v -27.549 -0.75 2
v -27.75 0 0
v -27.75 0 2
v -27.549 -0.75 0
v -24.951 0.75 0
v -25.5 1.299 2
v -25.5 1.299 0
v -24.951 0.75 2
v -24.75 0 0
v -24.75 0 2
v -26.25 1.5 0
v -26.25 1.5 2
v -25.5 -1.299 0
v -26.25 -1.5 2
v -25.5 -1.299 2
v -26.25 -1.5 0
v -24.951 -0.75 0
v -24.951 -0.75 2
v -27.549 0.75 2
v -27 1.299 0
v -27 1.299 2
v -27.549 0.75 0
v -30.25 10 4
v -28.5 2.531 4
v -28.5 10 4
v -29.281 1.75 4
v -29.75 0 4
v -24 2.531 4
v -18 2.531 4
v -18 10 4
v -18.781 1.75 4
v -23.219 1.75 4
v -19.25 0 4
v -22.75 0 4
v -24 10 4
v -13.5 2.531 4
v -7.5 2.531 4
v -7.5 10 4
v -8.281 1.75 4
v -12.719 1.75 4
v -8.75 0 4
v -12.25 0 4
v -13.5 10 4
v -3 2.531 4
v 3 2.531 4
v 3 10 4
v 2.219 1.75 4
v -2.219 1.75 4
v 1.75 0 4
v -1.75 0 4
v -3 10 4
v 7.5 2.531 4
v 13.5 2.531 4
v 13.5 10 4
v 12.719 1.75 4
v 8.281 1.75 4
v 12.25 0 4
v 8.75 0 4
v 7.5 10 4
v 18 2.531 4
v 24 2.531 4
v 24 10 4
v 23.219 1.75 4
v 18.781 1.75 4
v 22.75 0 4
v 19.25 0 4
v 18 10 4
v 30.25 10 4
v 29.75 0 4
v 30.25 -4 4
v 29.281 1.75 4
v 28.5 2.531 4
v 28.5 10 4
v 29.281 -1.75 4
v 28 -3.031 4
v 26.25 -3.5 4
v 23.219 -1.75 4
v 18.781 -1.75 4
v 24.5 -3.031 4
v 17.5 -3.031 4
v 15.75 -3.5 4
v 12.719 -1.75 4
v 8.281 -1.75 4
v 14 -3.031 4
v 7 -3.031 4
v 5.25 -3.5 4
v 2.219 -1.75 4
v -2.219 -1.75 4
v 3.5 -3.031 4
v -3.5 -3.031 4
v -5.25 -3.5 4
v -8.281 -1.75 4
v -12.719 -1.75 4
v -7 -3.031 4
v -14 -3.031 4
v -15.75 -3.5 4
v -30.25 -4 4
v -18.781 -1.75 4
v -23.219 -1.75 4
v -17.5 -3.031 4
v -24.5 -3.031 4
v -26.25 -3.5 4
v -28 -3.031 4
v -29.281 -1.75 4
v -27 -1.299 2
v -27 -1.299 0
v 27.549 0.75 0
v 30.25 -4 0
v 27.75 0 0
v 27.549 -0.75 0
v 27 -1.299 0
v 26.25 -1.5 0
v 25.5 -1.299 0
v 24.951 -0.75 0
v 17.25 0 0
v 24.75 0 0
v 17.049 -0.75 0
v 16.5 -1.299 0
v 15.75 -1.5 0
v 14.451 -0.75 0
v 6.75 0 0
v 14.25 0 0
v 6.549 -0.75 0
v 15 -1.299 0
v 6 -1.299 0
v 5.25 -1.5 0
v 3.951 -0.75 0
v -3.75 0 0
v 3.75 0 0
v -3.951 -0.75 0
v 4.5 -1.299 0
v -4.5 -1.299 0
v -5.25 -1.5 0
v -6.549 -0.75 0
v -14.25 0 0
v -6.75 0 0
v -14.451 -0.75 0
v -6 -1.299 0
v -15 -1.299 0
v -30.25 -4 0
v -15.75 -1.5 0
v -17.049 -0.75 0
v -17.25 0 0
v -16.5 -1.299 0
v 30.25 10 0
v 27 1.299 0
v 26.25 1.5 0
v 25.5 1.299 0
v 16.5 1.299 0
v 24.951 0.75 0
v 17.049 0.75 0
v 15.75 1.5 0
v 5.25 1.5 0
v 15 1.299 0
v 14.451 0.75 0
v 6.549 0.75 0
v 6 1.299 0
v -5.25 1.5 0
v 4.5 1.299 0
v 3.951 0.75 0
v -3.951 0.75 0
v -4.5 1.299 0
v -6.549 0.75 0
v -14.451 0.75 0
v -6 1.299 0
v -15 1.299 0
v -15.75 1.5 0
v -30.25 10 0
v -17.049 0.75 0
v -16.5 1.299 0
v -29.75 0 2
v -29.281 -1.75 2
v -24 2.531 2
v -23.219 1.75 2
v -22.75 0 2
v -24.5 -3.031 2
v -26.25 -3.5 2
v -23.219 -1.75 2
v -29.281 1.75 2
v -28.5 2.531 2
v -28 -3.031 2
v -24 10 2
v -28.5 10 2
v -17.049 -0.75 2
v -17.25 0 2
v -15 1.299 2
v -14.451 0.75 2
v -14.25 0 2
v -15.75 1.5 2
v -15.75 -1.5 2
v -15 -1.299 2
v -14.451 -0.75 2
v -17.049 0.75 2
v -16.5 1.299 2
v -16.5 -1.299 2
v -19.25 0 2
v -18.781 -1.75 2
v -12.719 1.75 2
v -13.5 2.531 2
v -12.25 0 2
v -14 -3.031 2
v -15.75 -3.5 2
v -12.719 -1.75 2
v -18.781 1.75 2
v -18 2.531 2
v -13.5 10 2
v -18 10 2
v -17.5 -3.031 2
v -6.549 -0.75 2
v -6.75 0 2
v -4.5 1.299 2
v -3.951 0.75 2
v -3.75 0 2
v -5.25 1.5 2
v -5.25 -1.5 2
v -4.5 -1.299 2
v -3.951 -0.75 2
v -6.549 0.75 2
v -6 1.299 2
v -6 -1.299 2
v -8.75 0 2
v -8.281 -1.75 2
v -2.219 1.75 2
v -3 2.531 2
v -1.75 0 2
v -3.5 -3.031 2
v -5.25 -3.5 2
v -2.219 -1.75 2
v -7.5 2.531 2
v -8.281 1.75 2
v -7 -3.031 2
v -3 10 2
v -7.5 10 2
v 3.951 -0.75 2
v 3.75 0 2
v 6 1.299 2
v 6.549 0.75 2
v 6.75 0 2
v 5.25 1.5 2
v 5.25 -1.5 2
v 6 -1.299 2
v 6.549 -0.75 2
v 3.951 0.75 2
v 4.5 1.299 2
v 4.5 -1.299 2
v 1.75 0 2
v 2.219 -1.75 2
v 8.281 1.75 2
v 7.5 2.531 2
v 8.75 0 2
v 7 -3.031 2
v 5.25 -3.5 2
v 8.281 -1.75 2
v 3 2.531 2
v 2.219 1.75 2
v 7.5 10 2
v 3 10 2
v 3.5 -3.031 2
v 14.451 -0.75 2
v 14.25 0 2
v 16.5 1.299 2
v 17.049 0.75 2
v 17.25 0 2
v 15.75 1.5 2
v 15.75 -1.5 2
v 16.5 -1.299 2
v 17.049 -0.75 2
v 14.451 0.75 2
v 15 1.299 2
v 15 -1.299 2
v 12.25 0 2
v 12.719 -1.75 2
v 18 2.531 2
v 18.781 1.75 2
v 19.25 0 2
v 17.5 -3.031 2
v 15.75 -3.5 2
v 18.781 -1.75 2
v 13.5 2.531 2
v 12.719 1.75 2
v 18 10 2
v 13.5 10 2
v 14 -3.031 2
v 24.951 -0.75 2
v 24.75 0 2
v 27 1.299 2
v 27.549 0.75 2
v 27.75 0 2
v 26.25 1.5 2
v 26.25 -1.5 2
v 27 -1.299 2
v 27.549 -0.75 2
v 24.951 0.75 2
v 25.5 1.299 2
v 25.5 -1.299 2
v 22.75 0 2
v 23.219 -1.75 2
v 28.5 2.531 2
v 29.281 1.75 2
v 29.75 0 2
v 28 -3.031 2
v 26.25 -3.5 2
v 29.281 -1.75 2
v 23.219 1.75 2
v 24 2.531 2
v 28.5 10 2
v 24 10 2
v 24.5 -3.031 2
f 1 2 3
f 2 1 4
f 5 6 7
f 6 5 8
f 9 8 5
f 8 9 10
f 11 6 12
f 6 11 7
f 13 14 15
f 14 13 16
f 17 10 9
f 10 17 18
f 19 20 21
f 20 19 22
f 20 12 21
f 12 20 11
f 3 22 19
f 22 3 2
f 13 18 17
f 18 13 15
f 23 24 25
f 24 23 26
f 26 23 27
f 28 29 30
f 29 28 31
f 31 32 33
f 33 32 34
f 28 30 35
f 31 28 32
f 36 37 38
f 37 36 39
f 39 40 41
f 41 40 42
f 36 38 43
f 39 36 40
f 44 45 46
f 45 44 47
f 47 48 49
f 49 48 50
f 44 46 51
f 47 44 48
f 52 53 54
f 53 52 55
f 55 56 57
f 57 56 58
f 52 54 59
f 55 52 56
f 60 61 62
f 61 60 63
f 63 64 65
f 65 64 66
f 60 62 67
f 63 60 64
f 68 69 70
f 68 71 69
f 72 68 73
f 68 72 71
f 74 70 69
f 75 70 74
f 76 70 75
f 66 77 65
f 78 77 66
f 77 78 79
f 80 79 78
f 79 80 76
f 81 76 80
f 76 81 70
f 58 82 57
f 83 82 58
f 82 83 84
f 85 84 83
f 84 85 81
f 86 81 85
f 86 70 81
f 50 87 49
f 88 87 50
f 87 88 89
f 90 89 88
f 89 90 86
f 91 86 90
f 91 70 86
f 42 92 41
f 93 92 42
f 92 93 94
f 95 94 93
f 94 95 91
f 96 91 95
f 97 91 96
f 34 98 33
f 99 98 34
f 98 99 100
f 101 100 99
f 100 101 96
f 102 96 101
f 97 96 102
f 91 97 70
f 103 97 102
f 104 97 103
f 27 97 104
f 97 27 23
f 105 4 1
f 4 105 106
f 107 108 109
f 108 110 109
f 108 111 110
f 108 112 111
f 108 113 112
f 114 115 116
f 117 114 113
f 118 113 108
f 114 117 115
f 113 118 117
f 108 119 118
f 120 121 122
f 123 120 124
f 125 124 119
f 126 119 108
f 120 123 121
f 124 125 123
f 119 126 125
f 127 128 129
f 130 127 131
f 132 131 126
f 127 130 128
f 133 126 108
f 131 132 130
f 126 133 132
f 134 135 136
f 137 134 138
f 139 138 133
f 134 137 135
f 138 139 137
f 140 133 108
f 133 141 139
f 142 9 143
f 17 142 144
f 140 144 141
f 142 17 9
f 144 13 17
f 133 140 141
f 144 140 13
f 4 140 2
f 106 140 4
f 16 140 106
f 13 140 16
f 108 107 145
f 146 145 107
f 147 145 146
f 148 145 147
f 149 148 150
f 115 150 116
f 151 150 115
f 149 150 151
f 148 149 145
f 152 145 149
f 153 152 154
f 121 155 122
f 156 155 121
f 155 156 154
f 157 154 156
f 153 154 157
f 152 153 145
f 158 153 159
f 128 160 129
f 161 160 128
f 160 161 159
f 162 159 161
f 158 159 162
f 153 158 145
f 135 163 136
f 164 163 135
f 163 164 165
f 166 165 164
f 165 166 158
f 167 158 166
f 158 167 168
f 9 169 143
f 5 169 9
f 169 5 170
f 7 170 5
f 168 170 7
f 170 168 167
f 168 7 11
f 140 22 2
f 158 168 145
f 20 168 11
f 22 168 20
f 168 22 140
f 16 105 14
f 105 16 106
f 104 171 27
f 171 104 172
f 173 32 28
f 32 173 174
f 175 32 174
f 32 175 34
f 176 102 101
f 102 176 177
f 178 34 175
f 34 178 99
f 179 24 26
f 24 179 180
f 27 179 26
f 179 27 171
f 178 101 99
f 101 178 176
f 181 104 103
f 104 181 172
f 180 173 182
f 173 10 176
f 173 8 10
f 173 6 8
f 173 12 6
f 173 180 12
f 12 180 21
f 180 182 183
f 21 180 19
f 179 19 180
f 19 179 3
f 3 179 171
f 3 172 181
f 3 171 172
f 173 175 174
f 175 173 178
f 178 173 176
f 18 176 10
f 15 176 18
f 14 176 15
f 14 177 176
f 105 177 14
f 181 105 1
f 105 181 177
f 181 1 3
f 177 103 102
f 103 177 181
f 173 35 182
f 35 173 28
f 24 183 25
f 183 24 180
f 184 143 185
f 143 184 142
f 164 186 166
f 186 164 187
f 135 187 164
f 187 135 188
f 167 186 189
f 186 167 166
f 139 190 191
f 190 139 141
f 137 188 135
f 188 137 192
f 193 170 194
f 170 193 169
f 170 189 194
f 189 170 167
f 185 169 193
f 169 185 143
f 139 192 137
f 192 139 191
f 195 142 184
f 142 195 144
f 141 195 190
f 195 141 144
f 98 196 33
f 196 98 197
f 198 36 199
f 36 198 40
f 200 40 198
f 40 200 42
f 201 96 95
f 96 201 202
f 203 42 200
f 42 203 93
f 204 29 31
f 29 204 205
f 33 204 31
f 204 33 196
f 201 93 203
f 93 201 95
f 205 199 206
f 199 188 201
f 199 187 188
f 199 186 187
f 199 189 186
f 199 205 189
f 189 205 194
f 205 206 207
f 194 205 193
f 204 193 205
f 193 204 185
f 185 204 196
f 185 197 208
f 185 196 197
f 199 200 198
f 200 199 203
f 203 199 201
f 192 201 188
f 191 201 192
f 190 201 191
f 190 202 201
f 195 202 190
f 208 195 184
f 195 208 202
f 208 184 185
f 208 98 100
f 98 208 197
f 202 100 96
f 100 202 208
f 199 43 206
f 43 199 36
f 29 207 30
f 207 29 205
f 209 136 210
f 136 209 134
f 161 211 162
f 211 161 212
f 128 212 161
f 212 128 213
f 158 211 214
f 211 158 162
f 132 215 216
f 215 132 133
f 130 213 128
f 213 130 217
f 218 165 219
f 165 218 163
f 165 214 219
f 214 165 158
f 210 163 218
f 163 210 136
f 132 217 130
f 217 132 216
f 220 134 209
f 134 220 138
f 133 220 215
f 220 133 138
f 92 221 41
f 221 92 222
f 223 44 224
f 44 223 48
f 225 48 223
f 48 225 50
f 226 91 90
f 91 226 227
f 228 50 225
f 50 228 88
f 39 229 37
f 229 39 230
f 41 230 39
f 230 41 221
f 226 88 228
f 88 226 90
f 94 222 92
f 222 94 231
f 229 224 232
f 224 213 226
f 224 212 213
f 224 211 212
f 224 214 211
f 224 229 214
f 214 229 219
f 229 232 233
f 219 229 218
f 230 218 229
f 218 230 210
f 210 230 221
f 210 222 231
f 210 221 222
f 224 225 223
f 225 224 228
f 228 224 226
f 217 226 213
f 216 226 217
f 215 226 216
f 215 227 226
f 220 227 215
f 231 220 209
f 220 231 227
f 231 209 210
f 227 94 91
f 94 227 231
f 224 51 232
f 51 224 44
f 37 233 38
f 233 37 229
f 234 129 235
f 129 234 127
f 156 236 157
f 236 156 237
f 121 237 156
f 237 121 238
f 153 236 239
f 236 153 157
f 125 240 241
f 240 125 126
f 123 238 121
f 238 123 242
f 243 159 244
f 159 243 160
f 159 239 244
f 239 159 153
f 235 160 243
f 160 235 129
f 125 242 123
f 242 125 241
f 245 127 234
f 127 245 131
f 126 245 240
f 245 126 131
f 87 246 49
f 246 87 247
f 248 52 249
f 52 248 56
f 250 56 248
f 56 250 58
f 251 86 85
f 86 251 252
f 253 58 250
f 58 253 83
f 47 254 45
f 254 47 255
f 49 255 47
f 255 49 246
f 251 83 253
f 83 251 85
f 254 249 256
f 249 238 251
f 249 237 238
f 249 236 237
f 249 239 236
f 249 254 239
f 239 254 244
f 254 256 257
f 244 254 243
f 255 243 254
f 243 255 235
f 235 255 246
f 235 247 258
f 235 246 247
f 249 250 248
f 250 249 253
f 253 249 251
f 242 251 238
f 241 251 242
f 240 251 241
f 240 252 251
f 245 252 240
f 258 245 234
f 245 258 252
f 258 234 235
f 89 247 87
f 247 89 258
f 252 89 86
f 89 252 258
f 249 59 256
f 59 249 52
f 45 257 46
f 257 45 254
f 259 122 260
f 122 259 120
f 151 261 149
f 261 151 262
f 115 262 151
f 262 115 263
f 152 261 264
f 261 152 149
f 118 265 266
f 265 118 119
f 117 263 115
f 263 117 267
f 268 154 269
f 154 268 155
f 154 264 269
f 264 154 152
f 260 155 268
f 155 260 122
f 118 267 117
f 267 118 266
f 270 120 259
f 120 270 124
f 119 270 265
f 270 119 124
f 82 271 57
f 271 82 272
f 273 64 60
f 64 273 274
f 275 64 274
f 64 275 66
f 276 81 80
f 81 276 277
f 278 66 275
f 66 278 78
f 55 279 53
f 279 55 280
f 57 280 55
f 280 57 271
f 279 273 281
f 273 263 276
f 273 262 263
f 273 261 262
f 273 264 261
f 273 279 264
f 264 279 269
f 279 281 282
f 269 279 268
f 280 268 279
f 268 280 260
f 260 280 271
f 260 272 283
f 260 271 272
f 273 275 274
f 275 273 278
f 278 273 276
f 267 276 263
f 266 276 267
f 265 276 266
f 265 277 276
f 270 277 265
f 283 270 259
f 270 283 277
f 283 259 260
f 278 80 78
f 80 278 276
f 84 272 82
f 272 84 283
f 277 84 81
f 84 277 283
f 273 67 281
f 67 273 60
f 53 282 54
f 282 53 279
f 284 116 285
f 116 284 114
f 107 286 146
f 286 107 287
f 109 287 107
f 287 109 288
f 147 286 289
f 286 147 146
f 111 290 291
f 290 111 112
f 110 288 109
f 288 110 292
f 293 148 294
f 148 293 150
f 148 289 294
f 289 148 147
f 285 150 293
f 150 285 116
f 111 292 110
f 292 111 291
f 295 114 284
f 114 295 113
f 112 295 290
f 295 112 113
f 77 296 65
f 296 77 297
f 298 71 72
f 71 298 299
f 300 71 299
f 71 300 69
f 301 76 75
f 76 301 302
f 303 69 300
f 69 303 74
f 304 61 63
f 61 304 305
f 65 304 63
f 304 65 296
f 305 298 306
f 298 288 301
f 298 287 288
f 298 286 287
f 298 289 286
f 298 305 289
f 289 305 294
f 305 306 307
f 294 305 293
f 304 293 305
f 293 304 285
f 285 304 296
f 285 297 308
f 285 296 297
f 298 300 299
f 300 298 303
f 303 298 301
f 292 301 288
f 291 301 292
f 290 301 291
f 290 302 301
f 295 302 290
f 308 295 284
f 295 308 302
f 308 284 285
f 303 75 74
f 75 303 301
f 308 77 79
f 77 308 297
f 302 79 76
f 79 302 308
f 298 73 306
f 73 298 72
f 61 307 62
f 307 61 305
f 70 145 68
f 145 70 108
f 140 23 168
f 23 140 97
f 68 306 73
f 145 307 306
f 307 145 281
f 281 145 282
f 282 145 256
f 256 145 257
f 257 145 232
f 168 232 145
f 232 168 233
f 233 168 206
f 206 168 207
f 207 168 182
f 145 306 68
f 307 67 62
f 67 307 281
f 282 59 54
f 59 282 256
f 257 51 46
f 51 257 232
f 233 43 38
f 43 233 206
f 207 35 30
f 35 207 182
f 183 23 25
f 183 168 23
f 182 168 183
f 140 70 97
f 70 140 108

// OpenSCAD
// file: ../parameter.scad
nStrings=6;
nFrets=24;
nLedFrets=16;
m5Dia=5.3;
m5HeadZ=3.5;
m4Dia=4.3;
m4NutDia=8.3;
m4NutZ=3.5;
m4HeadZ=2.5;
m3Dia=3.3;
m3NutDia=6.6;
m3NutZ=2.5;
m3HeadZ=2;
m3HeadDia=6;
m2Dia=2.4;
m2HeadZ=2;
strDistN=7;
strDistB=10.5;
scale=645;
neckSlotY=500;

slotXY=15;

bodySlotX=115;
bodySlotY=250;

jackYA=40;
jackYB=54;
jackZA=20;
jackZB=25;

bodyX=300;

bodyZ=40;

strDia=[1.7,1.4,1.1,0.7,0.5,0.35];

fretStrPlus=4;
fretLN=strDistN*(nStrings-1)+fretStrPlus*2;
fretLB=strDistB*(nStrings-1)+fretStrPlus*2;
strSpanB=strDistB*(nStrings-1);
strSpanN=strDistN*(nStrings-1);
fretBtmZ=1;
neckSlotX=fretLN;
neckSlotDist=neckSlotX-slotXY*2;

neck_sideT=5.5; //thicknes of the neck side locks
neck_bottomT=2.5;

neck_mntPosYA=447;
neck_mntPosYB=420;
neck_mntEndT=2.5;
neck_lastFretSpc=13;

nut_slotSink=6;

//fretY=16;
fretPcbZ=1.6;
fretDia=3.5;
fretZ=1.5;
fretOvrZ=4;
fretboardZ=fretOvrZ+fretPcbZ;



L=scale;
k=1.05946;

fretPos1=scale-(scale/pow(k,4));

function fretPos(i)=L-(L/pow(k,i));
function fretSpc(i)=(L/pow(k,i))-(L/pow(k,i+1));
function strSpc(i)=i/L*strDistB+(1-i/L)*strDistN;
function fretL(i)=(i/L*strDistB+(1-i/L)*strDistN)*(nStrings-1)+fretStrPlus*2;

echo (70-(fretL(fretPos(1))));
// main file
include <../parameter.scad>
strContact();
module strContact(){
strings=nStrings;
strToStr=strSpanB;
z=4;

spacing=strToStr/(strings-1);
strDia=3;
strSpD=4.5;
strSpZ=5;
oeseDia=7;
oeseShft=4.5;
x=strToStr+oeseDia+1;
y=oeseDia*2;


difference(){
translate([0,y/2-oeseDia/2-0.5,z/2])cube([x,y,z],center=true);

for(x=[0:strings-1]){
translate([x*(spacing)-spacing*strings/2+spacing/2,0,0]){
cylinder(h=z, d=strDia, $fn=12);
translate([0,0,z/2])cylinder(h=z/2, d=oeseDia, $fn=12);
translate([-oeseShft/2,0,z/2])cube([oeseShft,y,z/2]);
}
}

}
/*
for(x=[0:strings-1]){
translate([x*(spacing)-spacing*strings/2+spacing/2,0,-strSpZ]){
difference(){
cylinder(h=strSpZ, d=strSpD, $fn=12);
cylinder(h=strSpZ, d=strDia, $fn=12);}
}
}
*/
}
